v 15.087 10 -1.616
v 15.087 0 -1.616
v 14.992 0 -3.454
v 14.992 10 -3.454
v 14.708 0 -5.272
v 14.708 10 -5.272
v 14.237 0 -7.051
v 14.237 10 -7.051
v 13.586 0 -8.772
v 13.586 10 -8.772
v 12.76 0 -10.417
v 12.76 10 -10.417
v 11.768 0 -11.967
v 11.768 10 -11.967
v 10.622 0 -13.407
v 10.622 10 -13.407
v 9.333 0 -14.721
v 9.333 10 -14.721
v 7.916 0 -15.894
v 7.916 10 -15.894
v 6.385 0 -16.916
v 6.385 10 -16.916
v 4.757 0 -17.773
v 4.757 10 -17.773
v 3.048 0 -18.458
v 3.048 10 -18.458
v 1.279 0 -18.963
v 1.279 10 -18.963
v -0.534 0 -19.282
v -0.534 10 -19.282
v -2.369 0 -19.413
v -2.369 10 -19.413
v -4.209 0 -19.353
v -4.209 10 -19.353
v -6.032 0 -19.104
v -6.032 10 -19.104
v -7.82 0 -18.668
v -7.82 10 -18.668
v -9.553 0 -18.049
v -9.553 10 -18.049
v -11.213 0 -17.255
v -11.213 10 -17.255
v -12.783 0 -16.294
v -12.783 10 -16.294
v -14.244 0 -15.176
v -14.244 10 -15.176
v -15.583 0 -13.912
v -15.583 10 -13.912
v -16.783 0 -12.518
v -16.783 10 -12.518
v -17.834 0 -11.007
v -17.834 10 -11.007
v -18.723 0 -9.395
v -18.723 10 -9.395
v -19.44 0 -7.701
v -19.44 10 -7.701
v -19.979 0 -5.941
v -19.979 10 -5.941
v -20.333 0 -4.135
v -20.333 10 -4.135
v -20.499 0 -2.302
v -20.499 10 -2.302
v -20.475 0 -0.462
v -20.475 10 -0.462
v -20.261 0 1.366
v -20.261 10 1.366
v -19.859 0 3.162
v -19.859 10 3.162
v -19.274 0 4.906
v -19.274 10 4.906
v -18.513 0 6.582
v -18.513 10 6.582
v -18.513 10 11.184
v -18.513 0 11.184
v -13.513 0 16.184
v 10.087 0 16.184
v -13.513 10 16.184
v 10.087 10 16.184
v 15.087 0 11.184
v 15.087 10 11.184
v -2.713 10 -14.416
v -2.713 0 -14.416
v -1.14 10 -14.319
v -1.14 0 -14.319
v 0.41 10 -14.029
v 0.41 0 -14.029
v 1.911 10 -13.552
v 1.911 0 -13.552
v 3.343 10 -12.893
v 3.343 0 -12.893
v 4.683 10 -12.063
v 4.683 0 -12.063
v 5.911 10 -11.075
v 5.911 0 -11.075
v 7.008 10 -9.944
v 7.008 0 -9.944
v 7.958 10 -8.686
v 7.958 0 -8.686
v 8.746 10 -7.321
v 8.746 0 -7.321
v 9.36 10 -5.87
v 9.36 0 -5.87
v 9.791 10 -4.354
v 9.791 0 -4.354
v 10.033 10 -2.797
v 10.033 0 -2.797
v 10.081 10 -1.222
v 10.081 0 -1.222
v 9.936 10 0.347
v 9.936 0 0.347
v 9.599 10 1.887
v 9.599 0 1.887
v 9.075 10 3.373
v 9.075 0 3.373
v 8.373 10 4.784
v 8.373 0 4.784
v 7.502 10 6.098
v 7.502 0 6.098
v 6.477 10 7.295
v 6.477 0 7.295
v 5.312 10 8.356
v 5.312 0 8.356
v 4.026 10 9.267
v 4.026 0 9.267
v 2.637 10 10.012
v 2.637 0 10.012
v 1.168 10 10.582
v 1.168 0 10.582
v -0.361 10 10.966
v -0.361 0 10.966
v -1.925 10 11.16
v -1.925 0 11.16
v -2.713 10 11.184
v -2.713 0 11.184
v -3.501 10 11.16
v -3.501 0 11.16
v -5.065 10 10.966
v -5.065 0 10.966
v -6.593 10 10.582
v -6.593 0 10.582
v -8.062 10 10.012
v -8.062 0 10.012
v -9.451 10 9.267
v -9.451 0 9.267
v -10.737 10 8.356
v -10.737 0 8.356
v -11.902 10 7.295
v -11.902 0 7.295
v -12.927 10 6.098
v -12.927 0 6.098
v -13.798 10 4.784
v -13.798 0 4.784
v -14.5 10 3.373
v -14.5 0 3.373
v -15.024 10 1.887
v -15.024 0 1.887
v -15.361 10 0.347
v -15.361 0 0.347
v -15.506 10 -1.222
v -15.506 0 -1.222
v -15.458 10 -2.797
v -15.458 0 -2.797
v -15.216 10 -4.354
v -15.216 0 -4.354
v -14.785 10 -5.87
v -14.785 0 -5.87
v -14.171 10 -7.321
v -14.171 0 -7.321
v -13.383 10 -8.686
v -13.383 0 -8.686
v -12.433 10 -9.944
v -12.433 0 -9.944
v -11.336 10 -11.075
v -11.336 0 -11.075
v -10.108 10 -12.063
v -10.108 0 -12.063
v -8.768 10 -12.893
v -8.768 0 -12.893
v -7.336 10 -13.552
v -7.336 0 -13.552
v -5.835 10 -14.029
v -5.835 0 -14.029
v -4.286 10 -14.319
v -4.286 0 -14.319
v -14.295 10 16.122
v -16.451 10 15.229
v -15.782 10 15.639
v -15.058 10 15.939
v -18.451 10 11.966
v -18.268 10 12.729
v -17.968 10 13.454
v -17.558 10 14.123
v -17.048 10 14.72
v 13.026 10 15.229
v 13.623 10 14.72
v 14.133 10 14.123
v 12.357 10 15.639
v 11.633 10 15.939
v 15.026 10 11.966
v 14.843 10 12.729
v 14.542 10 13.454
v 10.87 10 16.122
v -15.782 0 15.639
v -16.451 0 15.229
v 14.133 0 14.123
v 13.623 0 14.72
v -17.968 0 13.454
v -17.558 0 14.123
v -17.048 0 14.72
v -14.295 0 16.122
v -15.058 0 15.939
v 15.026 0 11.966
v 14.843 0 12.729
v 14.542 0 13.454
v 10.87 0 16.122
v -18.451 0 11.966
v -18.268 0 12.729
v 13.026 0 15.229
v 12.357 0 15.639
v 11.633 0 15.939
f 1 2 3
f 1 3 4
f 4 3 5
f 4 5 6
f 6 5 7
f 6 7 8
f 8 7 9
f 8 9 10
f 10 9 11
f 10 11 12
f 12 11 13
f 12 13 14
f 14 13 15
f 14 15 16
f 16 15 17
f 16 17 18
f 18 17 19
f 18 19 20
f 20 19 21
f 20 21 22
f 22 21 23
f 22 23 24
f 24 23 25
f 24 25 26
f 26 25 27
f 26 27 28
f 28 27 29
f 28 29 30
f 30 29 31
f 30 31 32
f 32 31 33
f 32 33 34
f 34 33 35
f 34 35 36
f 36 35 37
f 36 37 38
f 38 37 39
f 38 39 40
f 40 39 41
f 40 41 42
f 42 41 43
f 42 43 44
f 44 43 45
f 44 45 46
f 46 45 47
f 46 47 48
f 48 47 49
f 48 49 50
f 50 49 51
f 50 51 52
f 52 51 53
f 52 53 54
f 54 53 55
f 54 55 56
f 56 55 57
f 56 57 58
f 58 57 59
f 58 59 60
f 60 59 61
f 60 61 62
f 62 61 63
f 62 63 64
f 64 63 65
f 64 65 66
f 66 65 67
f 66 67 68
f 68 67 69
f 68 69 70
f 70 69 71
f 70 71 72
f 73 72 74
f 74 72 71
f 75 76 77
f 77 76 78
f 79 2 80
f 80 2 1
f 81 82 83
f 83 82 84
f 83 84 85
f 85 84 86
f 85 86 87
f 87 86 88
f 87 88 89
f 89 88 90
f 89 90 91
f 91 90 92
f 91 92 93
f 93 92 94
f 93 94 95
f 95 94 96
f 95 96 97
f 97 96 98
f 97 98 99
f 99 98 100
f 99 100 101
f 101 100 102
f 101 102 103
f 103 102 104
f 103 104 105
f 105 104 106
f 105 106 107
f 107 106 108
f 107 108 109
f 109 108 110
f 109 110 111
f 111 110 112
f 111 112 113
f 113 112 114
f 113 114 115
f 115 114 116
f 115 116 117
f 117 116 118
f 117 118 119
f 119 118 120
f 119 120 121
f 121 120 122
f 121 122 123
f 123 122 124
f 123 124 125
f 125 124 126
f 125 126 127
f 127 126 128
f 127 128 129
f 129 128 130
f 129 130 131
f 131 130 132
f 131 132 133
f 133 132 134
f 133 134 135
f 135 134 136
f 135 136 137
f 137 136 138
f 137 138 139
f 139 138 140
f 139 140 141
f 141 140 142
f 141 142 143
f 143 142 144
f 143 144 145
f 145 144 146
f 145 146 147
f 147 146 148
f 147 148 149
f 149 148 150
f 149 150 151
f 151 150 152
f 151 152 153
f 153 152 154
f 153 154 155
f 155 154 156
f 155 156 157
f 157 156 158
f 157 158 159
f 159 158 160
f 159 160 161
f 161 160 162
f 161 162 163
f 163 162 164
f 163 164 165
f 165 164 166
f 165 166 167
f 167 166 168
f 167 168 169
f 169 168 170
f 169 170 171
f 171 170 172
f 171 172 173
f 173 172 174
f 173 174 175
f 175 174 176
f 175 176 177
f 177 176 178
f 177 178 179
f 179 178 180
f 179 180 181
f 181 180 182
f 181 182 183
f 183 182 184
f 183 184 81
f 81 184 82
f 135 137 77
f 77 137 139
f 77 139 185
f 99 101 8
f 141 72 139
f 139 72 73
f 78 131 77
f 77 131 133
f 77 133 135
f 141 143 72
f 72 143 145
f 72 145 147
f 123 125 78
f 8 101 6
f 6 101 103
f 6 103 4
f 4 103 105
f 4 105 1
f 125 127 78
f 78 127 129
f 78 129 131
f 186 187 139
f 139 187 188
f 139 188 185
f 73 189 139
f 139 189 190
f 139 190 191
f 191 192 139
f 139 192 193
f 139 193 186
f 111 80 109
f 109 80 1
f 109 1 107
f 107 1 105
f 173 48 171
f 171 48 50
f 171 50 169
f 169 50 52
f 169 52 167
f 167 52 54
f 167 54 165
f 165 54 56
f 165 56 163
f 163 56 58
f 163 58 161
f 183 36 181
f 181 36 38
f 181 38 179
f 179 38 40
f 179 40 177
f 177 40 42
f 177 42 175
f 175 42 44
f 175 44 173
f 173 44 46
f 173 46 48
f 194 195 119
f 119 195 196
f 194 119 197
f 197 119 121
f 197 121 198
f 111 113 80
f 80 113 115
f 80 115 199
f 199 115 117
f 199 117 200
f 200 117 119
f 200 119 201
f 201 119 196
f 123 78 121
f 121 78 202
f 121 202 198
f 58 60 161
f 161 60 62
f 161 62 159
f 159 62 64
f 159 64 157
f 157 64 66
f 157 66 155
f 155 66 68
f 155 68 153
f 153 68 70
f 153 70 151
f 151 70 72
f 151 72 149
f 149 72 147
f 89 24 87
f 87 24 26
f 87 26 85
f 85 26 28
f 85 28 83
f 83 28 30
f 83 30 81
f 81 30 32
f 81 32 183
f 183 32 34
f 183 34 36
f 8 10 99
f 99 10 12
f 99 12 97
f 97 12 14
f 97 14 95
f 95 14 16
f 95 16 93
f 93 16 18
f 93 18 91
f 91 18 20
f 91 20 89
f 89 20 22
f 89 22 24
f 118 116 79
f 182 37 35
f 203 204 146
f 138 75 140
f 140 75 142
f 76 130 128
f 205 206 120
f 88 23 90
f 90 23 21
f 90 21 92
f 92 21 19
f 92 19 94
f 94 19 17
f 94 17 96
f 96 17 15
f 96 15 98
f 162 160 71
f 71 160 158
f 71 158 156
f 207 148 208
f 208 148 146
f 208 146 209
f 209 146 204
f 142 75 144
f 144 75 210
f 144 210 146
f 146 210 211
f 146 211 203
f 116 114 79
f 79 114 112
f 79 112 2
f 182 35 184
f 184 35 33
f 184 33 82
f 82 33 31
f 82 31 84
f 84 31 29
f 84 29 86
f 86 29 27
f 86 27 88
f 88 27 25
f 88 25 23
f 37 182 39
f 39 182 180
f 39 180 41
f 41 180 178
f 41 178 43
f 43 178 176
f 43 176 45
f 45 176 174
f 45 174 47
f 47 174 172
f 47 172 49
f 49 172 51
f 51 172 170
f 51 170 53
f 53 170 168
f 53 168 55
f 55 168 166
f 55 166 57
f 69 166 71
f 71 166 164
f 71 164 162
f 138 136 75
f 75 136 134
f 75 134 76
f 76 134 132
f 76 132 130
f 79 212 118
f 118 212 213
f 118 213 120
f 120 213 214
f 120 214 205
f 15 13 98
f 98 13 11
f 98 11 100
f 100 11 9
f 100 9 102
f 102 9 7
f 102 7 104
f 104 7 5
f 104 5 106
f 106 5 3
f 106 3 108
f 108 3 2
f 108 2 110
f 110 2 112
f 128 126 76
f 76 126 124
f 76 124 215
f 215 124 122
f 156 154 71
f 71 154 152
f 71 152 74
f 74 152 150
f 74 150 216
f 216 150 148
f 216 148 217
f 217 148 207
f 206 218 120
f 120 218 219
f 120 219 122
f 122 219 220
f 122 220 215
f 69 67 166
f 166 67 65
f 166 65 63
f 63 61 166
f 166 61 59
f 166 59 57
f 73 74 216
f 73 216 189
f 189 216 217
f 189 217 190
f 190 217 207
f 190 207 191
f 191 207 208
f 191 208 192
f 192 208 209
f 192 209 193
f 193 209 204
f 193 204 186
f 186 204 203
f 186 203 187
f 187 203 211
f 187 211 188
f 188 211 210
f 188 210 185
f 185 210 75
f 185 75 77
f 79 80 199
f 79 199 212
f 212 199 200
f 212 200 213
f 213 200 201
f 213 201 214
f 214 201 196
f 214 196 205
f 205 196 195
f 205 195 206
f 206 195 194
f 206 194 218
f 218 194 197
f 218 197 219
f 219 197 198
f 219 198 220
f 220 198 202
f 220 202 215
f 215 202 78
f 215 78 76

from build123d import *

# Parameters (mm, degrees)
SKETCH1_R           = 12.8
BOSS_EXTRUDE2_DEPTH = 10
FILLET1_R           = 5


with BuildPart() as part:
    # Sketch1 → Boss-Extrude2 (new body)
    with BuildSketch(Plane(origin=(0, 0, 0), x_dir=(1, 0, 0), z_dir=(0, 1, 0))):
        with BuildLine():
            Line((15.087461292, -16.184019493), (15.087461292, 1.615980507))
            ThreePointArc((15.087461292, 1.615980507), (-6.93154333, 18.908753564), (-18.512538708, -6.581580106))
            Line((-18.512538708, -6.581580106), (-18.512538708, -16.184019493))
            Line((-18.512538708, -16.184019493), (15.087461292, -16.184019493))
        make_face()
        with Locations(Location((-2.712538708, 1.615980507, 0), (0, 0, 270))):
            Circle(SKETCH1_R, mode=Mode.SUBTRACT)
    extrude(amount=BOSS_EXTRUDE2_DEPTH)

    # Fillet1
    fillet1_edges = [part.edges().sort_by_distance(p)[0] for p in [
        (15.087461292, 5, 16.184019493),
        (-18.512538708, 5, 16.184019493),
    ]]
    fillet(fillet1_edges, radius=FILLET1_R)


solid = part.part
